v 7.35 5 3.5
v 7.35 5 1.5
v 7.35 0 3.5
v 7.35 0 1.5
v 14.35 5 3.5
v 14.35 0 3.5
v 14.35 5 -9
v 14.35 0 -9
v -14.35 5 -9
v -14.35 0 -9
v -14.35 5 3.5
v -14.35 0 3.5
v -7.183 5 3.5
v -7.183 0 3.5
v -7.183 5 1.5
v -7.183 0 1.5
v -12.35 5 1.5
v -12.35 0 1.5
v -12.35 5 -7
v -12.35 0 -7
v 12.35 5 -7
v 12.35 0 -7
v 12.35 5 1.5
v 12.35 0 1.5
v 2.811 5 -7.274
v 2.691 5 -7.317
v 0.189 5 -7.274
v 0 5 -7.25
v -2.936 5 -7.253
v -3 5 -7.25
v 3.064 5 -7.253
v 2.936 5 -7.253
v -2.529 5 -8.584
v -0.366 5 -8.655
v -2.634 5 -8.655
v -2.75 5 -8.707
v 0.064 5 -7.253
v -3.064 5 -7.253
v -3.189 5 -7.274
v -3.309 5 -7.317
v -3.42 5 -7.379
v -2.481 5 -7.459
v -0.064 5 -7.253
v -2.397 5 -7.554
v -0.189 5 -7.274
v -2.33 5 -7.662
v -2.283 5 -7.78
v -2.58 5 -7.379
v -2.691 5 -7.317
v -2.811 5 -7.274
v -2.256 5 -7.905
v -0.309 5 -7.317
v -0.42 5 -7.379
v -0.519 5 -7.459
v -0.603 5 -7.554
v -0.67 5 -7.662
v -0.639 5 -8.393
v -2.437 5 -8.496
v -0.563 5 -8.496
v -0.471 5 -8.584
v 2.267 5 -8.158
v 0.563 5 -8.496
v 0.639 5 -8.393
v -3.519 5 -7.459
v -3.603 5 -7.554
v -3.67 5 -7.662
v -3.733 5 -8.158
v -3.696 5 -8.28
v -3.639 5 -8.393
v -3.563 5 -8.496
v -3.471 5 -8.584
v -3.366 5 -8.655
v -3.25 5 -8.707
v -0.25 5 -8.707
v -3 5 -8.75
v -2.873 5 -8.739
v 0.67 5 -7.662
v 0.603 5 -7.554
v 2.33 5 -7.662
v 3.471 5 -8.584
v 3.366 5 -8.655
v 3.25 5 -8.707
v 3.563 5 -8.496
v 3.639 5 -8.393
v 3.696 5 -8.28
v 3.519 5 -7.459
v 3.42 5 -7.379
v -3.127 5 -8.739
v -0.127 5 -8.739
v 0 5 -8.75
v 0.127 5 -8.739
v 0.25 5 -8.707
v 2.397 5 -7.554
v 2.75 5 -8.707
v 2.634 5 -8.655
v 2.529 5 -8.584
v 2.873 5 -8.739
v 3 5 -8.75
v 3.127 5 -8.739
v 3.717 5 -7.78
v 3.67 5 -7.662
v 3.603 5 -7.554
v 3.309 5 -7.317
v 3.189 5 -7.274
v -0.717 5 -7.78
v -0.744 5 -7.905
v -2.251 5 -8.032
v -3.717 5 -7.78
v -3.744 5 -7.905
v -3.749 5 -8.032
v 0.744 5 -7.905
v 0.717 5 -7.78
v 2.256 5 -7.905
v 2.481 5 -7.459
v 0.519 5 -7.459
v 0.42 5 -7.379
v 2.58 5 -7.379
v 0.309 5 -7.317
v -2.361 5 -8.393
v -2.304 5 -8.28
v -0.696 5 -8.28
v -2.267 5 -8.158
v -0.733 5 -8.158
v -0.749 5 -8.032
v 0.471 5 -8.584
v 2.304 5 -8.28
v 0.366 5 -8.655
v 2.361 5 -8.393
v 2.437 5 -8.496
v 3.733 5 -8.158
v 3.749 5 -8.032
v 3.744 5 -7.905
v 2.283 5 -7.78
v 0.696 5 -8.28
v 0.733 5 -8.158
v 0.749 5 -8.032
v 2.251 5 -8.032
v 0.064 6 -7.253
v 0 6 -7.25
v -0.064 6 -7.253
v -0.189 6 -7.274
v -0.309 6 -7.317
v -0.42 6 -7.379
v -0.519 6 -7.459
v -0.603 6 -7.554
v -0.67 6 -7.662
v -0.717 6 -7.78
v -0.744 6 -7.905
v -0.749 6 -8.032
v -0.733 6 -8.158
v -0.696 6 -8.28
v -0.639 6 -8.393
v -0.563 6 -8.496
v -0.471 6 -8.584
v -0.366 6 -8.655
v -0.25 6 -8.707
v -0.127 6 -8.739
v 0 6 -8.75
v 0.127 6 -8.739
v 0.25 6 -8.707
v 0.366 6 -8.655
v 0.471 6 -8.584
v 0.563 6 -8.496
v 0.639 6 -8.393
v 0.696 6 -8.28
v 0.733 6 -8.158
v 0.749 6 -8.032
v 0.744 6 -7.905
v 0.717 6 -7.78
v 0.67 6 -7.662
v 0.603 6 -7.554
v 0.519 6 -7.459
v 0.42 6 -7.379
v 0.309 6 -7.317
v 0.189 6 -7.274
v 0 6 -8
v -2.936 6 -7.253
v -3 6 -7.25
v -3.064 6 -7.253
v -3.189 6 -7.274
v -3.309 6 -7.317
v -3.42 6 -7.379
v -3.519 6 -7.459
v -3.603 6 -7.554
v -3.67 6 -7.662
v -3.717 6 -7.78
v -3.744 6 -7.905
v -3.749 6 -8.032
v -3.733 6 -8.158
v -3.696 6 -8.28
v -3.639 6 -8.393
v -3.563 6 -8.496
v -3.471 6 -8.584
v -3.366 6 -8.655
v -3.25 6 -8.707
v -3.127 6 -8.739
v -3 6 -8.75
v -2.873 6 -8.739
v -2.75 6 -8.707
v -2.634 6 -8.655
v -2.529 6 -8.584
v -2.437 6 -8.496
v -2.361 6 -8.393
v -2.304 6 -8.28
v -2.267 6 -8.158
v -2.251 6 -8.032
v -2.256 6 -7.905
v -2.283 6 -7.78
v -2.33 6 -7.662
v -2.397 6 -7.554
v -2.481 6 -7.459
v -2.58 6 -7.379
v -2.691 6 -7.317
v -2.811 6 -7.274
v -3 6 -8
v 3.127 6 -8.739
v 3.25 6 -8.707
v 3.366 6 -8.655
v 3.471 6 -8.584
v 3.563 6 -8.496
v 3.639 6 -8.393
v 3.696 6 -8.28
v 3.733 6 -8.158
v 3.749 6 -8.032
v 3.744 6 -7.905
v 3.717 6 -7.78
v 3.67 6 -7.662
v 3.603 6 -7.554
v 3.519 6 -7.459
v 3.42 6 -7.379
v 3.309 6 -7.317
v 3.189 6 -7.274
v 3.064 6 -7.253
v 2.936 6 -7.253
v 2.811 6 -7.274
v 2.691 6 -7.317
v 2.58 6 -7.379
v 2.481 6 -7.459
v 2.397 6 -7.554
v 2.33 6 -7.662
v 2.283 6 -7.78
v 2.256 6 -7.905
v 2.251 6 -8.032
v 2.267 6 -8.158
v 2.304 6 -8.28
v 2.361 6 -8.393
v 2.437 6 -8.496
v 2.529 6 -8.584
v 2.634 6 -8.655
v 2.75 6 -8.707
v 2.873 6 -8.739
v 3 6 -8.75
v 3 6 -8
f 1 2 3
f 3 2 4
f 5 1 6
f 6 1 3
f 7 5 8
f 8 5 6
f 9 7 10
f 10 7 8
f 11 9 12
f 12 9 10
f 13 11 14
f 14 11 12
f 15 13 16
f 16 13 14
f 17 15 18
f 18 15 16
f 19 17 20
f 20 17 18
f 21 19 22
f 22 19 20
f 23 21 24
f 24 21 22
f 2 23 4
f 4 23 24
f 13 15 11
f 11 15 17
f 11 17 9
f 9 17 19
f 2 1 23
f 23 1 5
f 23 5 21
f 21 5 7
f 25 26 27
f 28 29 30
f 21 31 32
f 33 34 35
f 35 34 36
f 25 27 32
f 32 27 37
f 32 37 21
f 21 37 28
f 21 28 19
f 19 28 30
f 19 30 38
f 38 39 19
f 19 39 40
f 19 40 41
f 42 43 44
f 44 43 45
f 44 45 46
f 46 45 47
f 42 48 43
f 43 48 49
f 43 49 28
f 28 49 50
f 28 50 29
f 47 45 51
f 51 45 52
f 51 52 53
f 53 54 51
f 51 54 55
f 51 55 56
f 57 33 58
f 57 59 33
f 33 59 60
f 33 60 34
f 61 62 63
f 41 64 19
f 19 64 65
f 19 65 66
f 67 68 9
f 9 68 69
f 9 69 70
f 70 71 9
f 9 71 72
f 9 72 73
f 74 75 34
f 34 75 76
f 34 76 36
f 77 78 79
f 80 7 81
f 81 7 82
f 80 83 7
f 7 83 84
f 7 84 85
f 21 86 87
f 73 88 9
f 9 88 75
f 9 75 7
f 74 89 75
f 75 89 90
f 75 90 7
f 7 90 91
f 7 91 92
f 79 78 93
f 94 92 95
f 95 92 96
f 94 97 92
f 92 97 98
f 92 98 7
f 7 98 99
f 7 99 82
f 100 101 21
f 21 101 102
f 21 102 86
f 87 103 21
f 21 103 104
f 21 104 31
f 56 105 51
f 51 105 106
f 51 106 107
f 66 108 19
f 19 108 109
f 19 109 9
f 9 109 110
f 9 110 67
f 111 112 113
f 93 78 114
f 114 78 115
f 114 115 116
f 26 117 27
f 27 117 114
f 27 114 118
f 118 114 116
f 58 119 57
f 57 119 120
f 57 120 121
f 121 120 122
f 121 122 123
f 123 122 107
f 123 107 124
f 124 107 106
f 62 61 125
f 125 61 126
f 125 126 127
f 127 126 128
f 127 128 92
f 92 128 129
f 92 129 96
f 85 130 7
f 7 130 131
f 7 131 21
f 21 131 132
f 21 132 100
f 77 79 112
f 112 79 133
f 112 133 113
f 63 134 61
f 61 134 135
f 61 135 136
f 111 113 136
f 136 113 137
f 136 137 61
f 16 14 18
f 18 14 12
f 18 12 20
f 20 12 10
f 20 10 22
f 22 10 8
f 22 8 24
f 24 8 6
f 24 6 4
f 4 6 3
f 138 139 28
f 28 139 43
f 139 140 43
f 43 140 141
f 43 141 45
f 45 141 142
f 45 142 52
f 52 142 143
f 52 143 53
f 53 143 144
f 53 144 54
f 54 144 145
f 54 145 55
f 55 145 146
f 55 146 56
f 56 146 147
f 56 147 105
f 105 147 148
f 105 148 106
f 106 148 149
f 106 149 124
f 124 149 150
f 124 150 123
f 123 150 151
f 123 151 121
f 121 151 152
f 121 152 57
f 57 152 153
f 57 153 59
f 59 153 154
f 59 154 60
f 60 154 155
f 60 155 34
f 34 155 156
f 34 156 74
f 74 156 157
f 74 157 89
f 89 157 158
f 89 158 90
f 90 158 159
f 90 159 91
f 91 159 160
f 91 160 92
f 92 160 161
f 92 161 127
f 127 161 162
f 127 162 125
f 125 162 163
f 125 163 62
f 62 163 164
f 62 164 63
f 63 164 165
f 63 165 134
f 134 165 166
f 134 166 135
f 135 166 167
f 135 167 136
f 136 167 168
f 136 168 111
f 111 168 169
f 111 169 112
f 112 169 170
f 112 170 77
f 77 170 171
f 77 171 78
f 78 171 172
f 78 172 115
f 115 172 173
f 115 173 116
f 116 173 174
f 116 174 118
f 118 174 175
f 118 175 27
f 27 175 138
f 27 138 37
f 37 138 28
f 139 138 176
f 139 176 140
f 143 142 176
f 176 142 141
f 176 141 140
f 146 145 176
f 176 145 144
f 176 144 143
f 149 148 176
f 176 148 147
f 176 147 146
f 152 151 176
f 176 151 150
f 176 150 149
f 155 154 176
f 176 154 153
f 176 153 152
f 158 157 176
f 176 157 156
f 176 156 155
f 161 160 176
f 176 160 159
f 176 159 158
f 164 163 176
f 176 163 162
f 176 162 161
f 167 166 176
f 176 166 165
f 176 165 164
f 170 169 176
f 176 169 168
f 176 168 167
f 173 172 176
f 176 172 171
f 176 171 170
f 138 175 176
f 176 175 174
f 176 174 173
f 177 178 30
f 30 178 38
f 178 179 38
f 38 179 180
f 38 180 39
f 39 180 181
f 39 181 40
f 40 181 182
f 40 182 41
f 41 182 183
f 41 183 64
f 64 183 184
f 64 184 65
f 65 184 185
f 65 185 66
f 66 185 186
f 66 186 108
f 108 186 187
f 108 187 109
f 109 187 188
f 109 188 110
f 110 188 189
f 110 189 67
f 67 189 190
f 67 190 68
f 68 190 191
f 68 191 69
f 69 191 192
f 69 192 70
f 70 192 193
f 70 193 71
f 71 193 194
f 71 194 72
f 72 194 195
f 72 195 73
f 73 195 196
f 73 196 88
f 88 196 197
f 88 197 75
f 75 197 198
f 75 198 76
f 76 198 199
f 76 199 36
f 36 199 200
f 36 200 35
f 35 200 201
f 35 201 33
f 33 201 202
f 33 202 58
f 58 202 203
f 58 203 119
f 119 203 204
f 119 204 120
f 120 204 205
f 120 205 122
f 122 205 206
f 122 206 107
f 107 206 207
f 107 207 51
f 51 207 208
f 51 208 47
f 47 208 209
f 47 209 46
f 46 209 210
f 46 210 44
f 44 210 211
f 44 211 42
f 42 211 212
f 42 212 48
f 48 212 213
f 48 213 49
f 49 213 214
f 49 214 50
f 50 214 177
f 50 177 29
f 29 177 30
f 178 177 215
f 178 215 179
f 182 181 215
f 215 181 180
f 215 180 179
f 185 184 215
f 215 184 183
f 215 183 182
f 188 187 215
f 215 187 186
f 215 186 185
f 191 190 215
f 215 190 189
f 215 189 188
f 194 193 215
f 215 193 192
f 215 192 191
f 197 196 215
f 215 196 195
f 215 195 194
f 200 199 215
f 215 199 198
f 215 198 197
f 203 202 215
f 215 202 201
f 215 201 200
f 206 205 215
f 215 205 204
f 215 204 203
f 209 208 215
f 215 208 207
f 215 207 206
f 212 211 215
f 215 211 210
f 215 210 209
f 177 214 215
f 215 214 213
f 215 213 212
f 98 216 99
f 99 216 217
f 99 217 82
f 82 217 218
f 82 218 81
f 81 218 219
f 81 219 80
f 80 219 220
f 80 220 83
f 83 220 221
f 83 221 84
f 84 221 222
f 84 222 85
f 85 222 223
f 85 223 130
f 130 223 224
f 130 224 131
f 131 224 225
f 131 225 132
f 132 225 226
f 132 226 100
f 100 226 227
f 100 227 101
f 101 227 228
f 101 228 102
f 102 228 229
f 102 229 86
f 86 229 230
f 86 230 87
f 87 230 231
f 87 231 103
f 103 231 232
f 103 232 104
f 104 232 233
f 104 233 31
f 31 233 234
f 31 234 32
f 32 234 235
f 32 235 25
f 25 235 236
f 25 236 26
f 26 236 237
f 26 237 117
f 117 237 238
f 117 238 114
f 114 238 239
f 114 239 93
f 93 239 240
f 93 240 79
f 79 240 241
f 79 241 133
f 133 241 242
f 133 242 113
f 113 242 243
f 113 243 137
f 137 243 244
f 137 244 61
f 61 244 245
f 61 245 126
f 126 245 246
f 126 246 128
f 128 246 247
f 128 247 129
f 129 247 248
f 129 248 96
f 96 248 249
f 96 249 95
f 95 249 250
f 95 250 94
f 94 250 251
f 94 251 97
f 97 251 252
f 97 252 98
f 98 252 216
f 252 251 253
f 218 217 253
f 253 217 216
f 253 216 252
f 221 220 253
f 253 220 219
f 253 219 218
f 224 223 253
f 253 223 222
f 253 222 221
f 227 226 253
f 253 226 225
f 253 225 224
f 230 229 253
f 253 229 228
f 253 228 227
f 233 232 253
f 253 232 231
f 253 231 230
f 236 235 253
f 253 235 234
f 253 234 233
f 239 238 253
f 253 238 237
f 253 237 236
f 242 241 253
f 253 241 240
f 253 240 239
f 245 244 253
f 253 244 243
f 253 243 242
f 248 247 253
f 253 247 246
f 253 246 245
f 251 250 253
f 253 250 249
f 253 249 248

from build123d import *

# Parameters (mm, degrees)
BOSS_EXTRUDE1_DEPTH = 5
SKETCH2_R           = 0.75
BOSS_EXTRUDE4_DEPTH = 1


with BuildPart() as part:
    # Sketch1 → Boss-Extrude1 (new body)
    with BuildSketch(Plane(origin=(0, 0, 0), x_dir=(1, 0, 0), z_dir=(0, 1, 0))):
        Polygon((-12.35, 1.5), (-12.35, 7), (12.35, 7), (12.35, 1.5), (12.35, -1.5), (7.35, -1.5), (7.35, -3.5), (14.35, -3.5), (14.35, 9), (-14.35, 9), (-14.35, -3.5), (-7.182955123, -3.5), (-7.182955123, -1.5), (-12.35, -1.5), align=None)
    extrude(amount=BOSS_EXTRUDE1_DEPTH)

    # Sketch2 → Boss-Extrude4 (add)
    with BuildSketch(Plane(origin=(0, 5, 0), x_dir=(1, 0, 0), z_dir=(0, 1, 0))):
        with Locations((0, 8)):
            Circle(SKETCH2_R)
        with Locations((-3, 8)):
            Circle(SKETCH2_R)
        with Locations((3, 8)):
            Circle(SKETCH2_R)
    extrude(amount=BOSS_EXTRUDE4_DEPTH)


solid = part.part
